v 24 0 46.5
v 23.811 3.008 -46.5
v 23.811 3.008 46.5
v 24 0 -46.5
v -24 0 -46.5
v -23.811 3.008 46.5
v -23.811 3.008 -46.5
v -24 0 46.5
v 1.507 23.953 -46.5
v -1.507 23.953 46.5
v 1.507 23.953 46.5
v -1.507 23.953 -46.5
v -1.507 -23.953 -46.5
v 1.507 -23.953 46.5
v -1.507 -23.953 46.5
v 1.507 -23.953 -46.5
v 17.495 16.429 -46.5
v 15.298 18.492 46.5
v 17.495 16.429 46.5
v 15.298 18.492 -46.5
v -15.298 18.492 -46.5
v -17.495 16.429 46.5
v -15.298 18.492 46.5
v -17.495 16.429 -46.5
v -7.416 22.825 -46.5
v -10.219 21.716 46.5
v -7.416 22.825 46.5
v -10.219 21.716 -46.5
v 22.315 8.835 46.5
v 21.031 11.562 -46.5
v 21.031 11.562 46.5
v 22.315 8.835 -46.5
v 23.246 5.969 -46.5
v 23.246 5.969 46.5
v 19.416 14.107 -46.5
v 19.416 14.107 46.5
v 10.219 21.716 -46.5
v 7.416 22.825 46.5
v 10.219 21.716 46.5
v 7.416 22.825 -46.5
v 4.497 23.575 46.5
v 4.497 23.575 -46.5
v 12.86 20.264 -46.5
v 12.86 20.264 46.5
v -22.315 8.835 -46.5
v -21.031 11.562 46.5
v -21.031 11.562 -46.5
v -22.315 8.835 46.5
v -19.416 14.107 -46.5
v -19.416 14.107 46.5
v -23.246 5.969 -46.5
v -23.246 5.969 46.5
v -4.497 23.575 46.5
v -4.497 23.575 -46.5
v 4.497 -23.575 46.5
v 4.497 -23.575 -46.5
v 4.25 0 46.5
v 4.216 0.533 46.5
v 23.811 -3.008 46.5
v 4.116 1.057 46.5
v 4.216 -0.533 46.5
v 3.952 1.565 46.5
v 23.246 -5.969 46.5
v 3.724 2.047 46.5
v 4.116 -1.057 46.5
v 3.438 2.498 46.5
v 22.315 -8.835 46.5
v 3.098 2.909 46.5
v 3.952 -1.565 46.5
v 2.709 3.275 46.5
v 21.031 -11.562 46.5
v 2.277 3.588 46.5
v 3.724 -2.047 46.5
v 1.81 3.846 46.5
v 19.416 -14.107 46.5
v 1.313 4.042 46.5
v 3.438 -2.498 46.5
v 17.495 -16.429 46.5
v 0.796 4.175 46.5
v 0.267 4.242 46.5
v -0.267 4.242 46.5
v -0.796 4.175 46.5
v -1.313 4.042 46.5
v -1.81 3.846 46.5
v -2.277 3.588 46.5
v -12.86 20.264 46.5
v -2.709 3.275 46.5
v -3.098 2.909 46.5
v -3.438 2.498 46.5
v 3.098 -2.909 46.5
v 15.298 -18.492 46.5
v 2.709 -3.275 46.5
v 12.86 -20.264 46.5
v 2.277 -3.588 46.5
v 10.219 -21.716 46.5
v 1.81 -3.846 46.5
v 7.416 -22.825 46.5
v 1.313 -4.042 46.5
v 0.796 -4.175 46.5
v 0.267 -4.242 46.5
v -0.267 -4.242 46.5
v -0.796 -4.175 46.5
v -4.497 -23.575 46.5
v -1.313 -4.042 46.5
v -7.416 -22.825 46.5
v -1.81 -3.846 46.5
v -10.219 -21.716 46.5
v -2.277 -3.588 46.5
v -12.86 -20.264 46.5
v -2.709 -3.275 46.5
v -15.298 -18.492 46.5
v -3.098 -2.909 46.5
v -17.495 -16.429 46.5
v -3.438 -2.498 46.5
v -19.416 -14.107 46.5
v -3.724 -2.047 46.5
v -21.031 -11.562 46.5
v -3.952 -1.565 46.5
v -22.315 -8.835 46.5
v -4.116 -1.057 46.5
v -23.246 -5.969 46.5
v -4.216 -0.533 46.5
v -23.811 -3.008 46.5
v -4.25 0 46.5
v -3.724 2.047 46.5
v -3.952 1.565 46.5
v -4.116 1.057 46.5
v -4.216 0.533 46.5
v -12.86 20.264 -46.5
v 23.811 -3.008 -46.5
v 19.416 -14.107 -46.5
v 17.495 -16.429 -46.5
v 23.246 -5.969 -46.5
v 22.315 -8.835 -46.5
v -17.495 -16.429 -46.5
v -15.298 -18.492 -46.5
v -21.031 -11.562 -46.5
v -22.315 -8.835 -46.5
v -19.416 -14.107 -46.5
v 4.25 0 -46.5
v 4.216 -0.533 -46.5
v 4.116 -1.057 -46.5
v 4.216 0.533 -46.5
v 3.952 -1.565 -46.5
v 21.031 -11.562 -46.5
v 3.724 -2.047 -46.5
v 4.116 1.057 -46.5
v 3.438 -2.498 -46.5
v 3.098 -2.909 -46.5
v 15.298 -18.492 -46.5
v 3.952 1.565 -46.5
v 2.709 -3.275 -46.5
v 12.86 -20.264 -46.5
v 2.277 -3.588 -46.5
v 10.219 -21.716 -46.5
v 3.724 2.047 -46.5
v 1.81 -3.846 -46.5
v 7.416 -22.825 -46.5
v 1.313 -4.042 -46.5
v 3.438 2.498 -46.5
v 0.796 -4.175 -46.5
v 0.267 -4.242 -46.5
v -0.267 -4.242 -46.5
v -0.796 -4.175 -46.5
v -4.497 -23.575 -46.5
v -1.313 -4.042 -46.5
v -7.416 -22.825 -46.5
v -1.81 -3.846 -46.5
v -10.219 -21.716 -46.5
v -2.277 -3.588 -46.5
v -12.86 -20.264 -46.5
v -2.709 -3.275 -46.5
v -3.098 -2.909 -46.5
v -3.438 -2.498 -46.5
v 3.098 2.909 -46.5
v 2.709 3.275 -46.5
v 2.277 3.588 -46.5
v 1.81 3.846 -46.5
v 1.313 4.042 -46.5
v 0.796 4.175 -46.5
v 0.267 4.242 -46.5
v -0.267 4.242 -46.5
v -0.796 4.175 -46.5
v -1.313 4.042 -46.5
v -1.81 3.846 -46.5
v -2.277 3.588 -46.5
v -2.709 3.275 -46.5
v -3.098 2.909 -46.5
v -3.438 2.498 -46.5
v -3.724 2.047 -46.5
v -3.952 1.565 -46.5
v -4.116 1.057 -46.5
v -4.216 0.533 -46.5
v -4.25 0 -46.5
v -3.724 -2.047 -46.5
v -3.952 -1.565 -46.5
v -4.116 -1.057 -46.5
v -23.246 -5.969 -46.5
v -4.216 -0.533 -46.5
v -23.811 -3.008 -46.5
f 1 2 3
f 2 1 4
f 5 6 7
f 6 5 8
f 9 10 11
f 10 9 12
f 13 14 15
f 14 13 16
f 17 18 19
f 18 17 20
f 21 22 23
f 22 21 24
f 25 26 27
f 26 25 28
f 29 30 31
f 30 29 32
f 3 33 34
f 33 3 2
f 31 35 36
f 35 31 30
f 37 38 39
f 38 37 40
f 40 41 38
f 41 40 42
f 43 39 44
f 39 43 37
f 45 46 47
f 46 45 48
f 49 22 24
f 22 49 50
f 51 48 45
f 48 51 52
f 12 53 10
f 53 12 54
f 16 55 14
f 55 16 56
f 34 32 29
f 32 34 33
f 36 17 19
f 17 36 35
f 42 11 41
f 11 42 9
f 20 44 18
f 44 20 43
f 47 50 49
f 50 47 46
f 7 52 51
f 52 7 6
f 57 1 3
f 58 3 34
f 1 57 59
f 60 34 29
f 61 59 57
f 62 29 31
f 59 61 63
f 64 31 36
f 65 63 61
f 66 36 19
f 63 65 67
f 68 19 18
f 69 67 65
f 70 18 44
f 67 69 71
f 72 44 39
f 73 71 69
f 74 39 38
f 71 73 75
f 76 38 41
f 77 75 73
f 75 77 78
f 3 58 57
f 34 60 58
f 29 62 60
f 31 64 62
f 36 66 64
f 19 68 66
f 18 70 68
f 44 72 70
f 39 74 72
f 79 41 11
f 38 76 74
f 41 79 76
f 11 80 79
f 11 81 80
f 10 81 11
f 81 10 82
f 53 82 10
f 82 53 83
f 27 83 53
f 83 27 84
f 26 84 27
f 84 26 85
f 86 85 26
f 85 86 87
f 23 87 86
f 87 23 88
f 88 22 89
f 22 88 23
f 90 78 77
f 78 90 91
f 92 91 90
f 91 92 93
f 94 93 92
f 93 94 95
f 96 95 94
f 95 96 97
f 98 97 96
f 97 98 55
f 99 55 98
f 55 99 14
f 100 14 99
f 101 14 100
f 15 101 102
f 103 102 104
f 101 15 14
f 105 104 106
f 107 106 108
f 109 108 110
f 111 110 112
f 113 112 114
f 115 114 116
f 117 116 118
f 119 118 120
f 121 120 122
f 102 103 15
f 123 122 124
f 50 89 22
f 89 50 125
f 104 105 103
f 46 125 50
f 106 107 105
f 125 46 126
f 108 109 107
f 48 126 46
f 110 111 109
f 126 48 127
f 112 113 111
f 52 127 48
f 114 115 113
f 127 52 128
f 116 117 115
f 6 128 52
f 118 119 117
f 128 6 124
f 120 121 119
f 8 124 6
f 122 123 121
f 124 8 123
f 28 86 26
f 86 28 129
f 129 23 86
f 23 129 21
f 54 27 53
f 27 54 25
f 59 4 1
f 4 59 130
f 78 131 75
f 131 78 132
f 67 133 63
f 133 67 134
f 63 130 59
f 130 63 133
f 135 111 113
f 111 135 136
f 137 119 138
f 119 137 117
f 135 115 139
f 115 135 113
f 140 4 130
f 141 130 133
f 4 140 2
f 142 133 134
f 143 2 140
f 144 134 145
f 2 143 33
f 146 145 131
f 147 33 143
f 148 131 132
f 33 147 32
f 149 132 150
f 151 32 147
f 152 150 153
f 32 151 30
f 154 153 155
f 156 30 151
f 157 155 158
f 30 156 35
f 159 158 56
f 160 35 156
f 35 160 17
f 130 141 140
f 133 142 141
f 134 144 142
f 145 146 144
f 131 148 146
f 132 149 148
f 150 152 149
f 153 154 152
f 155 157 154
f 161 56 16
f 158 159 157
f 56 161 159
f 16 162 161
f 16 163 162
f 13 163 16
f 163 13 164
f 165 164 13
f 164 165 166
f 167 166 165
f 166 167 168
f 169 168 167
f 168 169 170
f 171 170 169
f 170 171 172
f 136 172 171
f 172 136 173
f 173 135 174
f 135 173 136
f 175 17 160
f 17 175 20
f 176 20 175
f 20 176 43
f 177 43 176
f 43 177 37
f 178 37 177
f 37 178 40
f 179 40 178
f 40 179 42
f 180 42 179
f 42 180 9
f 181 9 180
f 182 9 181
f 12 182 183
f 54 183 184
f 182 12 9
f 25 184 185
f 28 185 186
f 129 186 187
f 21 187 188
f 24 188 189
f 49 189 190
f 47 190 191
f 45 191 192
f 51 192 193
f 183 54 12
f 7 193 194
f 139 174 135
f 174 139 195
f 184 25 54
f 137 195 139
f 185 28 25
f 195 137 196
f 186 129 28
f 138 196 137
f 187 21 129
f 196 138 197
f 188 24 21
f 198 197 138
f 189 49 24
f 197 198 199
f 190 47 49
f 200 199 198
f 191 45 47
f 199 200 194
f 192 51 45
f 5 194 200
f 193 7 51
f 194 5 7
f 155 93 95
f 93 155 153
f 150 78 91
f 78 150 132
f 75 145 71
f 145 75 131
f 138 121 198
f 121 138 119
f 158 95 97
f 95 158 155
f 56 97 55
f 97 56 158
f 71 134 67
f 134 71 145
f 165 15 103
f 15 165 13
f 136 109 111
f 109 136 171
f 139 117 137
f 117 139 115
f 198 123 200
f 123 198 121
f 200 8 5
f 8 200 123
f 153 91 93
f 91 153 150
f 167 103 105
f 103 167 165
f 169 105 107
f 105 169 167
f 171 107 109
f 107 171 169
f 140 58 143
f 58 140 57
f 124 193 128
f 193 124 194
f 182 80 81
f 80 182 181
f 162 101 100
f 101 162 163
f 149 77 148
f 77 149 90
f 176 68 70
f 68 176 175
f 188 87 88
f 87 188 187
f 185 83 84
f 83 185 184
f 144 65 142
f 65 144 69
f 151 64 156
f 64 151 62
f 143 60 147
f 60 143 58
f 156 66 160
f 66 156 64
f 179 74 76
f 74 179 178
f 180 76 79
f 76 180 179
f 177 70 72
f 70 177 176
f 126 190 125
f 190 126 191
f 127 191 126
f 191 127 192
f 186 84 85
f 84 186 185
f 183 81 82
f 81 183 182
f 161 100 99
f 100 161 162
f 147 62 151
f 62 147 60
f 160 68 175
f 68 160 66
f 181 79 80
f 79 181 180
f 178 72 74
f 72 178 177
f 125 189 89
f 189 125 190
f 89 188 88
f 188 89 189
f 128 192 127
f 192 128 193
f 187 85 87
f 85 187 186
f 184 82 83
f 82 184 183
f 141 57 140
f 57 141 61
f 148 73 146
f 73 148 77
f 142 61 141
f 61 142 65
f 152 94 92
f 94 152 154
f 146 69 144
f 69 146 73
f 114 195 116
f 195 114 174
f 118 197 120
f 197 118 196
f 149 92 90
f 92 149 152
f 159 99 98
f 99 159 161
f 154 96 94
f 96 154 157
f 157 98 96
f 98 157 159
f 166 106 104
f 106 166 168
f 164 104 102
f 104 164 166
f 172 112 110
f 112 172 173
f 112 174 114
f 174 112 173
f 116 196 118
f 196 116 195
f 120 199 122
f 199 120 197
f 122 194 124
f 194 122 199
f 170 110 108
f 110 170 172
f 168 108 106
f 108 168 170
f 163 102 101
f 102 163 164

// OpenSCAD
$fn = 50;


difference() {
	union() {
		translate(v = [0, 0, -46.5000000000]) {
			cylinder(h = 93, r = 24.0000000000);
		}
	}
	union() {
		translate(v = [0, 0, -100.0000000000]) {
			cylinder(h = 200, r = 4.2500000000);
		}
	}
}
